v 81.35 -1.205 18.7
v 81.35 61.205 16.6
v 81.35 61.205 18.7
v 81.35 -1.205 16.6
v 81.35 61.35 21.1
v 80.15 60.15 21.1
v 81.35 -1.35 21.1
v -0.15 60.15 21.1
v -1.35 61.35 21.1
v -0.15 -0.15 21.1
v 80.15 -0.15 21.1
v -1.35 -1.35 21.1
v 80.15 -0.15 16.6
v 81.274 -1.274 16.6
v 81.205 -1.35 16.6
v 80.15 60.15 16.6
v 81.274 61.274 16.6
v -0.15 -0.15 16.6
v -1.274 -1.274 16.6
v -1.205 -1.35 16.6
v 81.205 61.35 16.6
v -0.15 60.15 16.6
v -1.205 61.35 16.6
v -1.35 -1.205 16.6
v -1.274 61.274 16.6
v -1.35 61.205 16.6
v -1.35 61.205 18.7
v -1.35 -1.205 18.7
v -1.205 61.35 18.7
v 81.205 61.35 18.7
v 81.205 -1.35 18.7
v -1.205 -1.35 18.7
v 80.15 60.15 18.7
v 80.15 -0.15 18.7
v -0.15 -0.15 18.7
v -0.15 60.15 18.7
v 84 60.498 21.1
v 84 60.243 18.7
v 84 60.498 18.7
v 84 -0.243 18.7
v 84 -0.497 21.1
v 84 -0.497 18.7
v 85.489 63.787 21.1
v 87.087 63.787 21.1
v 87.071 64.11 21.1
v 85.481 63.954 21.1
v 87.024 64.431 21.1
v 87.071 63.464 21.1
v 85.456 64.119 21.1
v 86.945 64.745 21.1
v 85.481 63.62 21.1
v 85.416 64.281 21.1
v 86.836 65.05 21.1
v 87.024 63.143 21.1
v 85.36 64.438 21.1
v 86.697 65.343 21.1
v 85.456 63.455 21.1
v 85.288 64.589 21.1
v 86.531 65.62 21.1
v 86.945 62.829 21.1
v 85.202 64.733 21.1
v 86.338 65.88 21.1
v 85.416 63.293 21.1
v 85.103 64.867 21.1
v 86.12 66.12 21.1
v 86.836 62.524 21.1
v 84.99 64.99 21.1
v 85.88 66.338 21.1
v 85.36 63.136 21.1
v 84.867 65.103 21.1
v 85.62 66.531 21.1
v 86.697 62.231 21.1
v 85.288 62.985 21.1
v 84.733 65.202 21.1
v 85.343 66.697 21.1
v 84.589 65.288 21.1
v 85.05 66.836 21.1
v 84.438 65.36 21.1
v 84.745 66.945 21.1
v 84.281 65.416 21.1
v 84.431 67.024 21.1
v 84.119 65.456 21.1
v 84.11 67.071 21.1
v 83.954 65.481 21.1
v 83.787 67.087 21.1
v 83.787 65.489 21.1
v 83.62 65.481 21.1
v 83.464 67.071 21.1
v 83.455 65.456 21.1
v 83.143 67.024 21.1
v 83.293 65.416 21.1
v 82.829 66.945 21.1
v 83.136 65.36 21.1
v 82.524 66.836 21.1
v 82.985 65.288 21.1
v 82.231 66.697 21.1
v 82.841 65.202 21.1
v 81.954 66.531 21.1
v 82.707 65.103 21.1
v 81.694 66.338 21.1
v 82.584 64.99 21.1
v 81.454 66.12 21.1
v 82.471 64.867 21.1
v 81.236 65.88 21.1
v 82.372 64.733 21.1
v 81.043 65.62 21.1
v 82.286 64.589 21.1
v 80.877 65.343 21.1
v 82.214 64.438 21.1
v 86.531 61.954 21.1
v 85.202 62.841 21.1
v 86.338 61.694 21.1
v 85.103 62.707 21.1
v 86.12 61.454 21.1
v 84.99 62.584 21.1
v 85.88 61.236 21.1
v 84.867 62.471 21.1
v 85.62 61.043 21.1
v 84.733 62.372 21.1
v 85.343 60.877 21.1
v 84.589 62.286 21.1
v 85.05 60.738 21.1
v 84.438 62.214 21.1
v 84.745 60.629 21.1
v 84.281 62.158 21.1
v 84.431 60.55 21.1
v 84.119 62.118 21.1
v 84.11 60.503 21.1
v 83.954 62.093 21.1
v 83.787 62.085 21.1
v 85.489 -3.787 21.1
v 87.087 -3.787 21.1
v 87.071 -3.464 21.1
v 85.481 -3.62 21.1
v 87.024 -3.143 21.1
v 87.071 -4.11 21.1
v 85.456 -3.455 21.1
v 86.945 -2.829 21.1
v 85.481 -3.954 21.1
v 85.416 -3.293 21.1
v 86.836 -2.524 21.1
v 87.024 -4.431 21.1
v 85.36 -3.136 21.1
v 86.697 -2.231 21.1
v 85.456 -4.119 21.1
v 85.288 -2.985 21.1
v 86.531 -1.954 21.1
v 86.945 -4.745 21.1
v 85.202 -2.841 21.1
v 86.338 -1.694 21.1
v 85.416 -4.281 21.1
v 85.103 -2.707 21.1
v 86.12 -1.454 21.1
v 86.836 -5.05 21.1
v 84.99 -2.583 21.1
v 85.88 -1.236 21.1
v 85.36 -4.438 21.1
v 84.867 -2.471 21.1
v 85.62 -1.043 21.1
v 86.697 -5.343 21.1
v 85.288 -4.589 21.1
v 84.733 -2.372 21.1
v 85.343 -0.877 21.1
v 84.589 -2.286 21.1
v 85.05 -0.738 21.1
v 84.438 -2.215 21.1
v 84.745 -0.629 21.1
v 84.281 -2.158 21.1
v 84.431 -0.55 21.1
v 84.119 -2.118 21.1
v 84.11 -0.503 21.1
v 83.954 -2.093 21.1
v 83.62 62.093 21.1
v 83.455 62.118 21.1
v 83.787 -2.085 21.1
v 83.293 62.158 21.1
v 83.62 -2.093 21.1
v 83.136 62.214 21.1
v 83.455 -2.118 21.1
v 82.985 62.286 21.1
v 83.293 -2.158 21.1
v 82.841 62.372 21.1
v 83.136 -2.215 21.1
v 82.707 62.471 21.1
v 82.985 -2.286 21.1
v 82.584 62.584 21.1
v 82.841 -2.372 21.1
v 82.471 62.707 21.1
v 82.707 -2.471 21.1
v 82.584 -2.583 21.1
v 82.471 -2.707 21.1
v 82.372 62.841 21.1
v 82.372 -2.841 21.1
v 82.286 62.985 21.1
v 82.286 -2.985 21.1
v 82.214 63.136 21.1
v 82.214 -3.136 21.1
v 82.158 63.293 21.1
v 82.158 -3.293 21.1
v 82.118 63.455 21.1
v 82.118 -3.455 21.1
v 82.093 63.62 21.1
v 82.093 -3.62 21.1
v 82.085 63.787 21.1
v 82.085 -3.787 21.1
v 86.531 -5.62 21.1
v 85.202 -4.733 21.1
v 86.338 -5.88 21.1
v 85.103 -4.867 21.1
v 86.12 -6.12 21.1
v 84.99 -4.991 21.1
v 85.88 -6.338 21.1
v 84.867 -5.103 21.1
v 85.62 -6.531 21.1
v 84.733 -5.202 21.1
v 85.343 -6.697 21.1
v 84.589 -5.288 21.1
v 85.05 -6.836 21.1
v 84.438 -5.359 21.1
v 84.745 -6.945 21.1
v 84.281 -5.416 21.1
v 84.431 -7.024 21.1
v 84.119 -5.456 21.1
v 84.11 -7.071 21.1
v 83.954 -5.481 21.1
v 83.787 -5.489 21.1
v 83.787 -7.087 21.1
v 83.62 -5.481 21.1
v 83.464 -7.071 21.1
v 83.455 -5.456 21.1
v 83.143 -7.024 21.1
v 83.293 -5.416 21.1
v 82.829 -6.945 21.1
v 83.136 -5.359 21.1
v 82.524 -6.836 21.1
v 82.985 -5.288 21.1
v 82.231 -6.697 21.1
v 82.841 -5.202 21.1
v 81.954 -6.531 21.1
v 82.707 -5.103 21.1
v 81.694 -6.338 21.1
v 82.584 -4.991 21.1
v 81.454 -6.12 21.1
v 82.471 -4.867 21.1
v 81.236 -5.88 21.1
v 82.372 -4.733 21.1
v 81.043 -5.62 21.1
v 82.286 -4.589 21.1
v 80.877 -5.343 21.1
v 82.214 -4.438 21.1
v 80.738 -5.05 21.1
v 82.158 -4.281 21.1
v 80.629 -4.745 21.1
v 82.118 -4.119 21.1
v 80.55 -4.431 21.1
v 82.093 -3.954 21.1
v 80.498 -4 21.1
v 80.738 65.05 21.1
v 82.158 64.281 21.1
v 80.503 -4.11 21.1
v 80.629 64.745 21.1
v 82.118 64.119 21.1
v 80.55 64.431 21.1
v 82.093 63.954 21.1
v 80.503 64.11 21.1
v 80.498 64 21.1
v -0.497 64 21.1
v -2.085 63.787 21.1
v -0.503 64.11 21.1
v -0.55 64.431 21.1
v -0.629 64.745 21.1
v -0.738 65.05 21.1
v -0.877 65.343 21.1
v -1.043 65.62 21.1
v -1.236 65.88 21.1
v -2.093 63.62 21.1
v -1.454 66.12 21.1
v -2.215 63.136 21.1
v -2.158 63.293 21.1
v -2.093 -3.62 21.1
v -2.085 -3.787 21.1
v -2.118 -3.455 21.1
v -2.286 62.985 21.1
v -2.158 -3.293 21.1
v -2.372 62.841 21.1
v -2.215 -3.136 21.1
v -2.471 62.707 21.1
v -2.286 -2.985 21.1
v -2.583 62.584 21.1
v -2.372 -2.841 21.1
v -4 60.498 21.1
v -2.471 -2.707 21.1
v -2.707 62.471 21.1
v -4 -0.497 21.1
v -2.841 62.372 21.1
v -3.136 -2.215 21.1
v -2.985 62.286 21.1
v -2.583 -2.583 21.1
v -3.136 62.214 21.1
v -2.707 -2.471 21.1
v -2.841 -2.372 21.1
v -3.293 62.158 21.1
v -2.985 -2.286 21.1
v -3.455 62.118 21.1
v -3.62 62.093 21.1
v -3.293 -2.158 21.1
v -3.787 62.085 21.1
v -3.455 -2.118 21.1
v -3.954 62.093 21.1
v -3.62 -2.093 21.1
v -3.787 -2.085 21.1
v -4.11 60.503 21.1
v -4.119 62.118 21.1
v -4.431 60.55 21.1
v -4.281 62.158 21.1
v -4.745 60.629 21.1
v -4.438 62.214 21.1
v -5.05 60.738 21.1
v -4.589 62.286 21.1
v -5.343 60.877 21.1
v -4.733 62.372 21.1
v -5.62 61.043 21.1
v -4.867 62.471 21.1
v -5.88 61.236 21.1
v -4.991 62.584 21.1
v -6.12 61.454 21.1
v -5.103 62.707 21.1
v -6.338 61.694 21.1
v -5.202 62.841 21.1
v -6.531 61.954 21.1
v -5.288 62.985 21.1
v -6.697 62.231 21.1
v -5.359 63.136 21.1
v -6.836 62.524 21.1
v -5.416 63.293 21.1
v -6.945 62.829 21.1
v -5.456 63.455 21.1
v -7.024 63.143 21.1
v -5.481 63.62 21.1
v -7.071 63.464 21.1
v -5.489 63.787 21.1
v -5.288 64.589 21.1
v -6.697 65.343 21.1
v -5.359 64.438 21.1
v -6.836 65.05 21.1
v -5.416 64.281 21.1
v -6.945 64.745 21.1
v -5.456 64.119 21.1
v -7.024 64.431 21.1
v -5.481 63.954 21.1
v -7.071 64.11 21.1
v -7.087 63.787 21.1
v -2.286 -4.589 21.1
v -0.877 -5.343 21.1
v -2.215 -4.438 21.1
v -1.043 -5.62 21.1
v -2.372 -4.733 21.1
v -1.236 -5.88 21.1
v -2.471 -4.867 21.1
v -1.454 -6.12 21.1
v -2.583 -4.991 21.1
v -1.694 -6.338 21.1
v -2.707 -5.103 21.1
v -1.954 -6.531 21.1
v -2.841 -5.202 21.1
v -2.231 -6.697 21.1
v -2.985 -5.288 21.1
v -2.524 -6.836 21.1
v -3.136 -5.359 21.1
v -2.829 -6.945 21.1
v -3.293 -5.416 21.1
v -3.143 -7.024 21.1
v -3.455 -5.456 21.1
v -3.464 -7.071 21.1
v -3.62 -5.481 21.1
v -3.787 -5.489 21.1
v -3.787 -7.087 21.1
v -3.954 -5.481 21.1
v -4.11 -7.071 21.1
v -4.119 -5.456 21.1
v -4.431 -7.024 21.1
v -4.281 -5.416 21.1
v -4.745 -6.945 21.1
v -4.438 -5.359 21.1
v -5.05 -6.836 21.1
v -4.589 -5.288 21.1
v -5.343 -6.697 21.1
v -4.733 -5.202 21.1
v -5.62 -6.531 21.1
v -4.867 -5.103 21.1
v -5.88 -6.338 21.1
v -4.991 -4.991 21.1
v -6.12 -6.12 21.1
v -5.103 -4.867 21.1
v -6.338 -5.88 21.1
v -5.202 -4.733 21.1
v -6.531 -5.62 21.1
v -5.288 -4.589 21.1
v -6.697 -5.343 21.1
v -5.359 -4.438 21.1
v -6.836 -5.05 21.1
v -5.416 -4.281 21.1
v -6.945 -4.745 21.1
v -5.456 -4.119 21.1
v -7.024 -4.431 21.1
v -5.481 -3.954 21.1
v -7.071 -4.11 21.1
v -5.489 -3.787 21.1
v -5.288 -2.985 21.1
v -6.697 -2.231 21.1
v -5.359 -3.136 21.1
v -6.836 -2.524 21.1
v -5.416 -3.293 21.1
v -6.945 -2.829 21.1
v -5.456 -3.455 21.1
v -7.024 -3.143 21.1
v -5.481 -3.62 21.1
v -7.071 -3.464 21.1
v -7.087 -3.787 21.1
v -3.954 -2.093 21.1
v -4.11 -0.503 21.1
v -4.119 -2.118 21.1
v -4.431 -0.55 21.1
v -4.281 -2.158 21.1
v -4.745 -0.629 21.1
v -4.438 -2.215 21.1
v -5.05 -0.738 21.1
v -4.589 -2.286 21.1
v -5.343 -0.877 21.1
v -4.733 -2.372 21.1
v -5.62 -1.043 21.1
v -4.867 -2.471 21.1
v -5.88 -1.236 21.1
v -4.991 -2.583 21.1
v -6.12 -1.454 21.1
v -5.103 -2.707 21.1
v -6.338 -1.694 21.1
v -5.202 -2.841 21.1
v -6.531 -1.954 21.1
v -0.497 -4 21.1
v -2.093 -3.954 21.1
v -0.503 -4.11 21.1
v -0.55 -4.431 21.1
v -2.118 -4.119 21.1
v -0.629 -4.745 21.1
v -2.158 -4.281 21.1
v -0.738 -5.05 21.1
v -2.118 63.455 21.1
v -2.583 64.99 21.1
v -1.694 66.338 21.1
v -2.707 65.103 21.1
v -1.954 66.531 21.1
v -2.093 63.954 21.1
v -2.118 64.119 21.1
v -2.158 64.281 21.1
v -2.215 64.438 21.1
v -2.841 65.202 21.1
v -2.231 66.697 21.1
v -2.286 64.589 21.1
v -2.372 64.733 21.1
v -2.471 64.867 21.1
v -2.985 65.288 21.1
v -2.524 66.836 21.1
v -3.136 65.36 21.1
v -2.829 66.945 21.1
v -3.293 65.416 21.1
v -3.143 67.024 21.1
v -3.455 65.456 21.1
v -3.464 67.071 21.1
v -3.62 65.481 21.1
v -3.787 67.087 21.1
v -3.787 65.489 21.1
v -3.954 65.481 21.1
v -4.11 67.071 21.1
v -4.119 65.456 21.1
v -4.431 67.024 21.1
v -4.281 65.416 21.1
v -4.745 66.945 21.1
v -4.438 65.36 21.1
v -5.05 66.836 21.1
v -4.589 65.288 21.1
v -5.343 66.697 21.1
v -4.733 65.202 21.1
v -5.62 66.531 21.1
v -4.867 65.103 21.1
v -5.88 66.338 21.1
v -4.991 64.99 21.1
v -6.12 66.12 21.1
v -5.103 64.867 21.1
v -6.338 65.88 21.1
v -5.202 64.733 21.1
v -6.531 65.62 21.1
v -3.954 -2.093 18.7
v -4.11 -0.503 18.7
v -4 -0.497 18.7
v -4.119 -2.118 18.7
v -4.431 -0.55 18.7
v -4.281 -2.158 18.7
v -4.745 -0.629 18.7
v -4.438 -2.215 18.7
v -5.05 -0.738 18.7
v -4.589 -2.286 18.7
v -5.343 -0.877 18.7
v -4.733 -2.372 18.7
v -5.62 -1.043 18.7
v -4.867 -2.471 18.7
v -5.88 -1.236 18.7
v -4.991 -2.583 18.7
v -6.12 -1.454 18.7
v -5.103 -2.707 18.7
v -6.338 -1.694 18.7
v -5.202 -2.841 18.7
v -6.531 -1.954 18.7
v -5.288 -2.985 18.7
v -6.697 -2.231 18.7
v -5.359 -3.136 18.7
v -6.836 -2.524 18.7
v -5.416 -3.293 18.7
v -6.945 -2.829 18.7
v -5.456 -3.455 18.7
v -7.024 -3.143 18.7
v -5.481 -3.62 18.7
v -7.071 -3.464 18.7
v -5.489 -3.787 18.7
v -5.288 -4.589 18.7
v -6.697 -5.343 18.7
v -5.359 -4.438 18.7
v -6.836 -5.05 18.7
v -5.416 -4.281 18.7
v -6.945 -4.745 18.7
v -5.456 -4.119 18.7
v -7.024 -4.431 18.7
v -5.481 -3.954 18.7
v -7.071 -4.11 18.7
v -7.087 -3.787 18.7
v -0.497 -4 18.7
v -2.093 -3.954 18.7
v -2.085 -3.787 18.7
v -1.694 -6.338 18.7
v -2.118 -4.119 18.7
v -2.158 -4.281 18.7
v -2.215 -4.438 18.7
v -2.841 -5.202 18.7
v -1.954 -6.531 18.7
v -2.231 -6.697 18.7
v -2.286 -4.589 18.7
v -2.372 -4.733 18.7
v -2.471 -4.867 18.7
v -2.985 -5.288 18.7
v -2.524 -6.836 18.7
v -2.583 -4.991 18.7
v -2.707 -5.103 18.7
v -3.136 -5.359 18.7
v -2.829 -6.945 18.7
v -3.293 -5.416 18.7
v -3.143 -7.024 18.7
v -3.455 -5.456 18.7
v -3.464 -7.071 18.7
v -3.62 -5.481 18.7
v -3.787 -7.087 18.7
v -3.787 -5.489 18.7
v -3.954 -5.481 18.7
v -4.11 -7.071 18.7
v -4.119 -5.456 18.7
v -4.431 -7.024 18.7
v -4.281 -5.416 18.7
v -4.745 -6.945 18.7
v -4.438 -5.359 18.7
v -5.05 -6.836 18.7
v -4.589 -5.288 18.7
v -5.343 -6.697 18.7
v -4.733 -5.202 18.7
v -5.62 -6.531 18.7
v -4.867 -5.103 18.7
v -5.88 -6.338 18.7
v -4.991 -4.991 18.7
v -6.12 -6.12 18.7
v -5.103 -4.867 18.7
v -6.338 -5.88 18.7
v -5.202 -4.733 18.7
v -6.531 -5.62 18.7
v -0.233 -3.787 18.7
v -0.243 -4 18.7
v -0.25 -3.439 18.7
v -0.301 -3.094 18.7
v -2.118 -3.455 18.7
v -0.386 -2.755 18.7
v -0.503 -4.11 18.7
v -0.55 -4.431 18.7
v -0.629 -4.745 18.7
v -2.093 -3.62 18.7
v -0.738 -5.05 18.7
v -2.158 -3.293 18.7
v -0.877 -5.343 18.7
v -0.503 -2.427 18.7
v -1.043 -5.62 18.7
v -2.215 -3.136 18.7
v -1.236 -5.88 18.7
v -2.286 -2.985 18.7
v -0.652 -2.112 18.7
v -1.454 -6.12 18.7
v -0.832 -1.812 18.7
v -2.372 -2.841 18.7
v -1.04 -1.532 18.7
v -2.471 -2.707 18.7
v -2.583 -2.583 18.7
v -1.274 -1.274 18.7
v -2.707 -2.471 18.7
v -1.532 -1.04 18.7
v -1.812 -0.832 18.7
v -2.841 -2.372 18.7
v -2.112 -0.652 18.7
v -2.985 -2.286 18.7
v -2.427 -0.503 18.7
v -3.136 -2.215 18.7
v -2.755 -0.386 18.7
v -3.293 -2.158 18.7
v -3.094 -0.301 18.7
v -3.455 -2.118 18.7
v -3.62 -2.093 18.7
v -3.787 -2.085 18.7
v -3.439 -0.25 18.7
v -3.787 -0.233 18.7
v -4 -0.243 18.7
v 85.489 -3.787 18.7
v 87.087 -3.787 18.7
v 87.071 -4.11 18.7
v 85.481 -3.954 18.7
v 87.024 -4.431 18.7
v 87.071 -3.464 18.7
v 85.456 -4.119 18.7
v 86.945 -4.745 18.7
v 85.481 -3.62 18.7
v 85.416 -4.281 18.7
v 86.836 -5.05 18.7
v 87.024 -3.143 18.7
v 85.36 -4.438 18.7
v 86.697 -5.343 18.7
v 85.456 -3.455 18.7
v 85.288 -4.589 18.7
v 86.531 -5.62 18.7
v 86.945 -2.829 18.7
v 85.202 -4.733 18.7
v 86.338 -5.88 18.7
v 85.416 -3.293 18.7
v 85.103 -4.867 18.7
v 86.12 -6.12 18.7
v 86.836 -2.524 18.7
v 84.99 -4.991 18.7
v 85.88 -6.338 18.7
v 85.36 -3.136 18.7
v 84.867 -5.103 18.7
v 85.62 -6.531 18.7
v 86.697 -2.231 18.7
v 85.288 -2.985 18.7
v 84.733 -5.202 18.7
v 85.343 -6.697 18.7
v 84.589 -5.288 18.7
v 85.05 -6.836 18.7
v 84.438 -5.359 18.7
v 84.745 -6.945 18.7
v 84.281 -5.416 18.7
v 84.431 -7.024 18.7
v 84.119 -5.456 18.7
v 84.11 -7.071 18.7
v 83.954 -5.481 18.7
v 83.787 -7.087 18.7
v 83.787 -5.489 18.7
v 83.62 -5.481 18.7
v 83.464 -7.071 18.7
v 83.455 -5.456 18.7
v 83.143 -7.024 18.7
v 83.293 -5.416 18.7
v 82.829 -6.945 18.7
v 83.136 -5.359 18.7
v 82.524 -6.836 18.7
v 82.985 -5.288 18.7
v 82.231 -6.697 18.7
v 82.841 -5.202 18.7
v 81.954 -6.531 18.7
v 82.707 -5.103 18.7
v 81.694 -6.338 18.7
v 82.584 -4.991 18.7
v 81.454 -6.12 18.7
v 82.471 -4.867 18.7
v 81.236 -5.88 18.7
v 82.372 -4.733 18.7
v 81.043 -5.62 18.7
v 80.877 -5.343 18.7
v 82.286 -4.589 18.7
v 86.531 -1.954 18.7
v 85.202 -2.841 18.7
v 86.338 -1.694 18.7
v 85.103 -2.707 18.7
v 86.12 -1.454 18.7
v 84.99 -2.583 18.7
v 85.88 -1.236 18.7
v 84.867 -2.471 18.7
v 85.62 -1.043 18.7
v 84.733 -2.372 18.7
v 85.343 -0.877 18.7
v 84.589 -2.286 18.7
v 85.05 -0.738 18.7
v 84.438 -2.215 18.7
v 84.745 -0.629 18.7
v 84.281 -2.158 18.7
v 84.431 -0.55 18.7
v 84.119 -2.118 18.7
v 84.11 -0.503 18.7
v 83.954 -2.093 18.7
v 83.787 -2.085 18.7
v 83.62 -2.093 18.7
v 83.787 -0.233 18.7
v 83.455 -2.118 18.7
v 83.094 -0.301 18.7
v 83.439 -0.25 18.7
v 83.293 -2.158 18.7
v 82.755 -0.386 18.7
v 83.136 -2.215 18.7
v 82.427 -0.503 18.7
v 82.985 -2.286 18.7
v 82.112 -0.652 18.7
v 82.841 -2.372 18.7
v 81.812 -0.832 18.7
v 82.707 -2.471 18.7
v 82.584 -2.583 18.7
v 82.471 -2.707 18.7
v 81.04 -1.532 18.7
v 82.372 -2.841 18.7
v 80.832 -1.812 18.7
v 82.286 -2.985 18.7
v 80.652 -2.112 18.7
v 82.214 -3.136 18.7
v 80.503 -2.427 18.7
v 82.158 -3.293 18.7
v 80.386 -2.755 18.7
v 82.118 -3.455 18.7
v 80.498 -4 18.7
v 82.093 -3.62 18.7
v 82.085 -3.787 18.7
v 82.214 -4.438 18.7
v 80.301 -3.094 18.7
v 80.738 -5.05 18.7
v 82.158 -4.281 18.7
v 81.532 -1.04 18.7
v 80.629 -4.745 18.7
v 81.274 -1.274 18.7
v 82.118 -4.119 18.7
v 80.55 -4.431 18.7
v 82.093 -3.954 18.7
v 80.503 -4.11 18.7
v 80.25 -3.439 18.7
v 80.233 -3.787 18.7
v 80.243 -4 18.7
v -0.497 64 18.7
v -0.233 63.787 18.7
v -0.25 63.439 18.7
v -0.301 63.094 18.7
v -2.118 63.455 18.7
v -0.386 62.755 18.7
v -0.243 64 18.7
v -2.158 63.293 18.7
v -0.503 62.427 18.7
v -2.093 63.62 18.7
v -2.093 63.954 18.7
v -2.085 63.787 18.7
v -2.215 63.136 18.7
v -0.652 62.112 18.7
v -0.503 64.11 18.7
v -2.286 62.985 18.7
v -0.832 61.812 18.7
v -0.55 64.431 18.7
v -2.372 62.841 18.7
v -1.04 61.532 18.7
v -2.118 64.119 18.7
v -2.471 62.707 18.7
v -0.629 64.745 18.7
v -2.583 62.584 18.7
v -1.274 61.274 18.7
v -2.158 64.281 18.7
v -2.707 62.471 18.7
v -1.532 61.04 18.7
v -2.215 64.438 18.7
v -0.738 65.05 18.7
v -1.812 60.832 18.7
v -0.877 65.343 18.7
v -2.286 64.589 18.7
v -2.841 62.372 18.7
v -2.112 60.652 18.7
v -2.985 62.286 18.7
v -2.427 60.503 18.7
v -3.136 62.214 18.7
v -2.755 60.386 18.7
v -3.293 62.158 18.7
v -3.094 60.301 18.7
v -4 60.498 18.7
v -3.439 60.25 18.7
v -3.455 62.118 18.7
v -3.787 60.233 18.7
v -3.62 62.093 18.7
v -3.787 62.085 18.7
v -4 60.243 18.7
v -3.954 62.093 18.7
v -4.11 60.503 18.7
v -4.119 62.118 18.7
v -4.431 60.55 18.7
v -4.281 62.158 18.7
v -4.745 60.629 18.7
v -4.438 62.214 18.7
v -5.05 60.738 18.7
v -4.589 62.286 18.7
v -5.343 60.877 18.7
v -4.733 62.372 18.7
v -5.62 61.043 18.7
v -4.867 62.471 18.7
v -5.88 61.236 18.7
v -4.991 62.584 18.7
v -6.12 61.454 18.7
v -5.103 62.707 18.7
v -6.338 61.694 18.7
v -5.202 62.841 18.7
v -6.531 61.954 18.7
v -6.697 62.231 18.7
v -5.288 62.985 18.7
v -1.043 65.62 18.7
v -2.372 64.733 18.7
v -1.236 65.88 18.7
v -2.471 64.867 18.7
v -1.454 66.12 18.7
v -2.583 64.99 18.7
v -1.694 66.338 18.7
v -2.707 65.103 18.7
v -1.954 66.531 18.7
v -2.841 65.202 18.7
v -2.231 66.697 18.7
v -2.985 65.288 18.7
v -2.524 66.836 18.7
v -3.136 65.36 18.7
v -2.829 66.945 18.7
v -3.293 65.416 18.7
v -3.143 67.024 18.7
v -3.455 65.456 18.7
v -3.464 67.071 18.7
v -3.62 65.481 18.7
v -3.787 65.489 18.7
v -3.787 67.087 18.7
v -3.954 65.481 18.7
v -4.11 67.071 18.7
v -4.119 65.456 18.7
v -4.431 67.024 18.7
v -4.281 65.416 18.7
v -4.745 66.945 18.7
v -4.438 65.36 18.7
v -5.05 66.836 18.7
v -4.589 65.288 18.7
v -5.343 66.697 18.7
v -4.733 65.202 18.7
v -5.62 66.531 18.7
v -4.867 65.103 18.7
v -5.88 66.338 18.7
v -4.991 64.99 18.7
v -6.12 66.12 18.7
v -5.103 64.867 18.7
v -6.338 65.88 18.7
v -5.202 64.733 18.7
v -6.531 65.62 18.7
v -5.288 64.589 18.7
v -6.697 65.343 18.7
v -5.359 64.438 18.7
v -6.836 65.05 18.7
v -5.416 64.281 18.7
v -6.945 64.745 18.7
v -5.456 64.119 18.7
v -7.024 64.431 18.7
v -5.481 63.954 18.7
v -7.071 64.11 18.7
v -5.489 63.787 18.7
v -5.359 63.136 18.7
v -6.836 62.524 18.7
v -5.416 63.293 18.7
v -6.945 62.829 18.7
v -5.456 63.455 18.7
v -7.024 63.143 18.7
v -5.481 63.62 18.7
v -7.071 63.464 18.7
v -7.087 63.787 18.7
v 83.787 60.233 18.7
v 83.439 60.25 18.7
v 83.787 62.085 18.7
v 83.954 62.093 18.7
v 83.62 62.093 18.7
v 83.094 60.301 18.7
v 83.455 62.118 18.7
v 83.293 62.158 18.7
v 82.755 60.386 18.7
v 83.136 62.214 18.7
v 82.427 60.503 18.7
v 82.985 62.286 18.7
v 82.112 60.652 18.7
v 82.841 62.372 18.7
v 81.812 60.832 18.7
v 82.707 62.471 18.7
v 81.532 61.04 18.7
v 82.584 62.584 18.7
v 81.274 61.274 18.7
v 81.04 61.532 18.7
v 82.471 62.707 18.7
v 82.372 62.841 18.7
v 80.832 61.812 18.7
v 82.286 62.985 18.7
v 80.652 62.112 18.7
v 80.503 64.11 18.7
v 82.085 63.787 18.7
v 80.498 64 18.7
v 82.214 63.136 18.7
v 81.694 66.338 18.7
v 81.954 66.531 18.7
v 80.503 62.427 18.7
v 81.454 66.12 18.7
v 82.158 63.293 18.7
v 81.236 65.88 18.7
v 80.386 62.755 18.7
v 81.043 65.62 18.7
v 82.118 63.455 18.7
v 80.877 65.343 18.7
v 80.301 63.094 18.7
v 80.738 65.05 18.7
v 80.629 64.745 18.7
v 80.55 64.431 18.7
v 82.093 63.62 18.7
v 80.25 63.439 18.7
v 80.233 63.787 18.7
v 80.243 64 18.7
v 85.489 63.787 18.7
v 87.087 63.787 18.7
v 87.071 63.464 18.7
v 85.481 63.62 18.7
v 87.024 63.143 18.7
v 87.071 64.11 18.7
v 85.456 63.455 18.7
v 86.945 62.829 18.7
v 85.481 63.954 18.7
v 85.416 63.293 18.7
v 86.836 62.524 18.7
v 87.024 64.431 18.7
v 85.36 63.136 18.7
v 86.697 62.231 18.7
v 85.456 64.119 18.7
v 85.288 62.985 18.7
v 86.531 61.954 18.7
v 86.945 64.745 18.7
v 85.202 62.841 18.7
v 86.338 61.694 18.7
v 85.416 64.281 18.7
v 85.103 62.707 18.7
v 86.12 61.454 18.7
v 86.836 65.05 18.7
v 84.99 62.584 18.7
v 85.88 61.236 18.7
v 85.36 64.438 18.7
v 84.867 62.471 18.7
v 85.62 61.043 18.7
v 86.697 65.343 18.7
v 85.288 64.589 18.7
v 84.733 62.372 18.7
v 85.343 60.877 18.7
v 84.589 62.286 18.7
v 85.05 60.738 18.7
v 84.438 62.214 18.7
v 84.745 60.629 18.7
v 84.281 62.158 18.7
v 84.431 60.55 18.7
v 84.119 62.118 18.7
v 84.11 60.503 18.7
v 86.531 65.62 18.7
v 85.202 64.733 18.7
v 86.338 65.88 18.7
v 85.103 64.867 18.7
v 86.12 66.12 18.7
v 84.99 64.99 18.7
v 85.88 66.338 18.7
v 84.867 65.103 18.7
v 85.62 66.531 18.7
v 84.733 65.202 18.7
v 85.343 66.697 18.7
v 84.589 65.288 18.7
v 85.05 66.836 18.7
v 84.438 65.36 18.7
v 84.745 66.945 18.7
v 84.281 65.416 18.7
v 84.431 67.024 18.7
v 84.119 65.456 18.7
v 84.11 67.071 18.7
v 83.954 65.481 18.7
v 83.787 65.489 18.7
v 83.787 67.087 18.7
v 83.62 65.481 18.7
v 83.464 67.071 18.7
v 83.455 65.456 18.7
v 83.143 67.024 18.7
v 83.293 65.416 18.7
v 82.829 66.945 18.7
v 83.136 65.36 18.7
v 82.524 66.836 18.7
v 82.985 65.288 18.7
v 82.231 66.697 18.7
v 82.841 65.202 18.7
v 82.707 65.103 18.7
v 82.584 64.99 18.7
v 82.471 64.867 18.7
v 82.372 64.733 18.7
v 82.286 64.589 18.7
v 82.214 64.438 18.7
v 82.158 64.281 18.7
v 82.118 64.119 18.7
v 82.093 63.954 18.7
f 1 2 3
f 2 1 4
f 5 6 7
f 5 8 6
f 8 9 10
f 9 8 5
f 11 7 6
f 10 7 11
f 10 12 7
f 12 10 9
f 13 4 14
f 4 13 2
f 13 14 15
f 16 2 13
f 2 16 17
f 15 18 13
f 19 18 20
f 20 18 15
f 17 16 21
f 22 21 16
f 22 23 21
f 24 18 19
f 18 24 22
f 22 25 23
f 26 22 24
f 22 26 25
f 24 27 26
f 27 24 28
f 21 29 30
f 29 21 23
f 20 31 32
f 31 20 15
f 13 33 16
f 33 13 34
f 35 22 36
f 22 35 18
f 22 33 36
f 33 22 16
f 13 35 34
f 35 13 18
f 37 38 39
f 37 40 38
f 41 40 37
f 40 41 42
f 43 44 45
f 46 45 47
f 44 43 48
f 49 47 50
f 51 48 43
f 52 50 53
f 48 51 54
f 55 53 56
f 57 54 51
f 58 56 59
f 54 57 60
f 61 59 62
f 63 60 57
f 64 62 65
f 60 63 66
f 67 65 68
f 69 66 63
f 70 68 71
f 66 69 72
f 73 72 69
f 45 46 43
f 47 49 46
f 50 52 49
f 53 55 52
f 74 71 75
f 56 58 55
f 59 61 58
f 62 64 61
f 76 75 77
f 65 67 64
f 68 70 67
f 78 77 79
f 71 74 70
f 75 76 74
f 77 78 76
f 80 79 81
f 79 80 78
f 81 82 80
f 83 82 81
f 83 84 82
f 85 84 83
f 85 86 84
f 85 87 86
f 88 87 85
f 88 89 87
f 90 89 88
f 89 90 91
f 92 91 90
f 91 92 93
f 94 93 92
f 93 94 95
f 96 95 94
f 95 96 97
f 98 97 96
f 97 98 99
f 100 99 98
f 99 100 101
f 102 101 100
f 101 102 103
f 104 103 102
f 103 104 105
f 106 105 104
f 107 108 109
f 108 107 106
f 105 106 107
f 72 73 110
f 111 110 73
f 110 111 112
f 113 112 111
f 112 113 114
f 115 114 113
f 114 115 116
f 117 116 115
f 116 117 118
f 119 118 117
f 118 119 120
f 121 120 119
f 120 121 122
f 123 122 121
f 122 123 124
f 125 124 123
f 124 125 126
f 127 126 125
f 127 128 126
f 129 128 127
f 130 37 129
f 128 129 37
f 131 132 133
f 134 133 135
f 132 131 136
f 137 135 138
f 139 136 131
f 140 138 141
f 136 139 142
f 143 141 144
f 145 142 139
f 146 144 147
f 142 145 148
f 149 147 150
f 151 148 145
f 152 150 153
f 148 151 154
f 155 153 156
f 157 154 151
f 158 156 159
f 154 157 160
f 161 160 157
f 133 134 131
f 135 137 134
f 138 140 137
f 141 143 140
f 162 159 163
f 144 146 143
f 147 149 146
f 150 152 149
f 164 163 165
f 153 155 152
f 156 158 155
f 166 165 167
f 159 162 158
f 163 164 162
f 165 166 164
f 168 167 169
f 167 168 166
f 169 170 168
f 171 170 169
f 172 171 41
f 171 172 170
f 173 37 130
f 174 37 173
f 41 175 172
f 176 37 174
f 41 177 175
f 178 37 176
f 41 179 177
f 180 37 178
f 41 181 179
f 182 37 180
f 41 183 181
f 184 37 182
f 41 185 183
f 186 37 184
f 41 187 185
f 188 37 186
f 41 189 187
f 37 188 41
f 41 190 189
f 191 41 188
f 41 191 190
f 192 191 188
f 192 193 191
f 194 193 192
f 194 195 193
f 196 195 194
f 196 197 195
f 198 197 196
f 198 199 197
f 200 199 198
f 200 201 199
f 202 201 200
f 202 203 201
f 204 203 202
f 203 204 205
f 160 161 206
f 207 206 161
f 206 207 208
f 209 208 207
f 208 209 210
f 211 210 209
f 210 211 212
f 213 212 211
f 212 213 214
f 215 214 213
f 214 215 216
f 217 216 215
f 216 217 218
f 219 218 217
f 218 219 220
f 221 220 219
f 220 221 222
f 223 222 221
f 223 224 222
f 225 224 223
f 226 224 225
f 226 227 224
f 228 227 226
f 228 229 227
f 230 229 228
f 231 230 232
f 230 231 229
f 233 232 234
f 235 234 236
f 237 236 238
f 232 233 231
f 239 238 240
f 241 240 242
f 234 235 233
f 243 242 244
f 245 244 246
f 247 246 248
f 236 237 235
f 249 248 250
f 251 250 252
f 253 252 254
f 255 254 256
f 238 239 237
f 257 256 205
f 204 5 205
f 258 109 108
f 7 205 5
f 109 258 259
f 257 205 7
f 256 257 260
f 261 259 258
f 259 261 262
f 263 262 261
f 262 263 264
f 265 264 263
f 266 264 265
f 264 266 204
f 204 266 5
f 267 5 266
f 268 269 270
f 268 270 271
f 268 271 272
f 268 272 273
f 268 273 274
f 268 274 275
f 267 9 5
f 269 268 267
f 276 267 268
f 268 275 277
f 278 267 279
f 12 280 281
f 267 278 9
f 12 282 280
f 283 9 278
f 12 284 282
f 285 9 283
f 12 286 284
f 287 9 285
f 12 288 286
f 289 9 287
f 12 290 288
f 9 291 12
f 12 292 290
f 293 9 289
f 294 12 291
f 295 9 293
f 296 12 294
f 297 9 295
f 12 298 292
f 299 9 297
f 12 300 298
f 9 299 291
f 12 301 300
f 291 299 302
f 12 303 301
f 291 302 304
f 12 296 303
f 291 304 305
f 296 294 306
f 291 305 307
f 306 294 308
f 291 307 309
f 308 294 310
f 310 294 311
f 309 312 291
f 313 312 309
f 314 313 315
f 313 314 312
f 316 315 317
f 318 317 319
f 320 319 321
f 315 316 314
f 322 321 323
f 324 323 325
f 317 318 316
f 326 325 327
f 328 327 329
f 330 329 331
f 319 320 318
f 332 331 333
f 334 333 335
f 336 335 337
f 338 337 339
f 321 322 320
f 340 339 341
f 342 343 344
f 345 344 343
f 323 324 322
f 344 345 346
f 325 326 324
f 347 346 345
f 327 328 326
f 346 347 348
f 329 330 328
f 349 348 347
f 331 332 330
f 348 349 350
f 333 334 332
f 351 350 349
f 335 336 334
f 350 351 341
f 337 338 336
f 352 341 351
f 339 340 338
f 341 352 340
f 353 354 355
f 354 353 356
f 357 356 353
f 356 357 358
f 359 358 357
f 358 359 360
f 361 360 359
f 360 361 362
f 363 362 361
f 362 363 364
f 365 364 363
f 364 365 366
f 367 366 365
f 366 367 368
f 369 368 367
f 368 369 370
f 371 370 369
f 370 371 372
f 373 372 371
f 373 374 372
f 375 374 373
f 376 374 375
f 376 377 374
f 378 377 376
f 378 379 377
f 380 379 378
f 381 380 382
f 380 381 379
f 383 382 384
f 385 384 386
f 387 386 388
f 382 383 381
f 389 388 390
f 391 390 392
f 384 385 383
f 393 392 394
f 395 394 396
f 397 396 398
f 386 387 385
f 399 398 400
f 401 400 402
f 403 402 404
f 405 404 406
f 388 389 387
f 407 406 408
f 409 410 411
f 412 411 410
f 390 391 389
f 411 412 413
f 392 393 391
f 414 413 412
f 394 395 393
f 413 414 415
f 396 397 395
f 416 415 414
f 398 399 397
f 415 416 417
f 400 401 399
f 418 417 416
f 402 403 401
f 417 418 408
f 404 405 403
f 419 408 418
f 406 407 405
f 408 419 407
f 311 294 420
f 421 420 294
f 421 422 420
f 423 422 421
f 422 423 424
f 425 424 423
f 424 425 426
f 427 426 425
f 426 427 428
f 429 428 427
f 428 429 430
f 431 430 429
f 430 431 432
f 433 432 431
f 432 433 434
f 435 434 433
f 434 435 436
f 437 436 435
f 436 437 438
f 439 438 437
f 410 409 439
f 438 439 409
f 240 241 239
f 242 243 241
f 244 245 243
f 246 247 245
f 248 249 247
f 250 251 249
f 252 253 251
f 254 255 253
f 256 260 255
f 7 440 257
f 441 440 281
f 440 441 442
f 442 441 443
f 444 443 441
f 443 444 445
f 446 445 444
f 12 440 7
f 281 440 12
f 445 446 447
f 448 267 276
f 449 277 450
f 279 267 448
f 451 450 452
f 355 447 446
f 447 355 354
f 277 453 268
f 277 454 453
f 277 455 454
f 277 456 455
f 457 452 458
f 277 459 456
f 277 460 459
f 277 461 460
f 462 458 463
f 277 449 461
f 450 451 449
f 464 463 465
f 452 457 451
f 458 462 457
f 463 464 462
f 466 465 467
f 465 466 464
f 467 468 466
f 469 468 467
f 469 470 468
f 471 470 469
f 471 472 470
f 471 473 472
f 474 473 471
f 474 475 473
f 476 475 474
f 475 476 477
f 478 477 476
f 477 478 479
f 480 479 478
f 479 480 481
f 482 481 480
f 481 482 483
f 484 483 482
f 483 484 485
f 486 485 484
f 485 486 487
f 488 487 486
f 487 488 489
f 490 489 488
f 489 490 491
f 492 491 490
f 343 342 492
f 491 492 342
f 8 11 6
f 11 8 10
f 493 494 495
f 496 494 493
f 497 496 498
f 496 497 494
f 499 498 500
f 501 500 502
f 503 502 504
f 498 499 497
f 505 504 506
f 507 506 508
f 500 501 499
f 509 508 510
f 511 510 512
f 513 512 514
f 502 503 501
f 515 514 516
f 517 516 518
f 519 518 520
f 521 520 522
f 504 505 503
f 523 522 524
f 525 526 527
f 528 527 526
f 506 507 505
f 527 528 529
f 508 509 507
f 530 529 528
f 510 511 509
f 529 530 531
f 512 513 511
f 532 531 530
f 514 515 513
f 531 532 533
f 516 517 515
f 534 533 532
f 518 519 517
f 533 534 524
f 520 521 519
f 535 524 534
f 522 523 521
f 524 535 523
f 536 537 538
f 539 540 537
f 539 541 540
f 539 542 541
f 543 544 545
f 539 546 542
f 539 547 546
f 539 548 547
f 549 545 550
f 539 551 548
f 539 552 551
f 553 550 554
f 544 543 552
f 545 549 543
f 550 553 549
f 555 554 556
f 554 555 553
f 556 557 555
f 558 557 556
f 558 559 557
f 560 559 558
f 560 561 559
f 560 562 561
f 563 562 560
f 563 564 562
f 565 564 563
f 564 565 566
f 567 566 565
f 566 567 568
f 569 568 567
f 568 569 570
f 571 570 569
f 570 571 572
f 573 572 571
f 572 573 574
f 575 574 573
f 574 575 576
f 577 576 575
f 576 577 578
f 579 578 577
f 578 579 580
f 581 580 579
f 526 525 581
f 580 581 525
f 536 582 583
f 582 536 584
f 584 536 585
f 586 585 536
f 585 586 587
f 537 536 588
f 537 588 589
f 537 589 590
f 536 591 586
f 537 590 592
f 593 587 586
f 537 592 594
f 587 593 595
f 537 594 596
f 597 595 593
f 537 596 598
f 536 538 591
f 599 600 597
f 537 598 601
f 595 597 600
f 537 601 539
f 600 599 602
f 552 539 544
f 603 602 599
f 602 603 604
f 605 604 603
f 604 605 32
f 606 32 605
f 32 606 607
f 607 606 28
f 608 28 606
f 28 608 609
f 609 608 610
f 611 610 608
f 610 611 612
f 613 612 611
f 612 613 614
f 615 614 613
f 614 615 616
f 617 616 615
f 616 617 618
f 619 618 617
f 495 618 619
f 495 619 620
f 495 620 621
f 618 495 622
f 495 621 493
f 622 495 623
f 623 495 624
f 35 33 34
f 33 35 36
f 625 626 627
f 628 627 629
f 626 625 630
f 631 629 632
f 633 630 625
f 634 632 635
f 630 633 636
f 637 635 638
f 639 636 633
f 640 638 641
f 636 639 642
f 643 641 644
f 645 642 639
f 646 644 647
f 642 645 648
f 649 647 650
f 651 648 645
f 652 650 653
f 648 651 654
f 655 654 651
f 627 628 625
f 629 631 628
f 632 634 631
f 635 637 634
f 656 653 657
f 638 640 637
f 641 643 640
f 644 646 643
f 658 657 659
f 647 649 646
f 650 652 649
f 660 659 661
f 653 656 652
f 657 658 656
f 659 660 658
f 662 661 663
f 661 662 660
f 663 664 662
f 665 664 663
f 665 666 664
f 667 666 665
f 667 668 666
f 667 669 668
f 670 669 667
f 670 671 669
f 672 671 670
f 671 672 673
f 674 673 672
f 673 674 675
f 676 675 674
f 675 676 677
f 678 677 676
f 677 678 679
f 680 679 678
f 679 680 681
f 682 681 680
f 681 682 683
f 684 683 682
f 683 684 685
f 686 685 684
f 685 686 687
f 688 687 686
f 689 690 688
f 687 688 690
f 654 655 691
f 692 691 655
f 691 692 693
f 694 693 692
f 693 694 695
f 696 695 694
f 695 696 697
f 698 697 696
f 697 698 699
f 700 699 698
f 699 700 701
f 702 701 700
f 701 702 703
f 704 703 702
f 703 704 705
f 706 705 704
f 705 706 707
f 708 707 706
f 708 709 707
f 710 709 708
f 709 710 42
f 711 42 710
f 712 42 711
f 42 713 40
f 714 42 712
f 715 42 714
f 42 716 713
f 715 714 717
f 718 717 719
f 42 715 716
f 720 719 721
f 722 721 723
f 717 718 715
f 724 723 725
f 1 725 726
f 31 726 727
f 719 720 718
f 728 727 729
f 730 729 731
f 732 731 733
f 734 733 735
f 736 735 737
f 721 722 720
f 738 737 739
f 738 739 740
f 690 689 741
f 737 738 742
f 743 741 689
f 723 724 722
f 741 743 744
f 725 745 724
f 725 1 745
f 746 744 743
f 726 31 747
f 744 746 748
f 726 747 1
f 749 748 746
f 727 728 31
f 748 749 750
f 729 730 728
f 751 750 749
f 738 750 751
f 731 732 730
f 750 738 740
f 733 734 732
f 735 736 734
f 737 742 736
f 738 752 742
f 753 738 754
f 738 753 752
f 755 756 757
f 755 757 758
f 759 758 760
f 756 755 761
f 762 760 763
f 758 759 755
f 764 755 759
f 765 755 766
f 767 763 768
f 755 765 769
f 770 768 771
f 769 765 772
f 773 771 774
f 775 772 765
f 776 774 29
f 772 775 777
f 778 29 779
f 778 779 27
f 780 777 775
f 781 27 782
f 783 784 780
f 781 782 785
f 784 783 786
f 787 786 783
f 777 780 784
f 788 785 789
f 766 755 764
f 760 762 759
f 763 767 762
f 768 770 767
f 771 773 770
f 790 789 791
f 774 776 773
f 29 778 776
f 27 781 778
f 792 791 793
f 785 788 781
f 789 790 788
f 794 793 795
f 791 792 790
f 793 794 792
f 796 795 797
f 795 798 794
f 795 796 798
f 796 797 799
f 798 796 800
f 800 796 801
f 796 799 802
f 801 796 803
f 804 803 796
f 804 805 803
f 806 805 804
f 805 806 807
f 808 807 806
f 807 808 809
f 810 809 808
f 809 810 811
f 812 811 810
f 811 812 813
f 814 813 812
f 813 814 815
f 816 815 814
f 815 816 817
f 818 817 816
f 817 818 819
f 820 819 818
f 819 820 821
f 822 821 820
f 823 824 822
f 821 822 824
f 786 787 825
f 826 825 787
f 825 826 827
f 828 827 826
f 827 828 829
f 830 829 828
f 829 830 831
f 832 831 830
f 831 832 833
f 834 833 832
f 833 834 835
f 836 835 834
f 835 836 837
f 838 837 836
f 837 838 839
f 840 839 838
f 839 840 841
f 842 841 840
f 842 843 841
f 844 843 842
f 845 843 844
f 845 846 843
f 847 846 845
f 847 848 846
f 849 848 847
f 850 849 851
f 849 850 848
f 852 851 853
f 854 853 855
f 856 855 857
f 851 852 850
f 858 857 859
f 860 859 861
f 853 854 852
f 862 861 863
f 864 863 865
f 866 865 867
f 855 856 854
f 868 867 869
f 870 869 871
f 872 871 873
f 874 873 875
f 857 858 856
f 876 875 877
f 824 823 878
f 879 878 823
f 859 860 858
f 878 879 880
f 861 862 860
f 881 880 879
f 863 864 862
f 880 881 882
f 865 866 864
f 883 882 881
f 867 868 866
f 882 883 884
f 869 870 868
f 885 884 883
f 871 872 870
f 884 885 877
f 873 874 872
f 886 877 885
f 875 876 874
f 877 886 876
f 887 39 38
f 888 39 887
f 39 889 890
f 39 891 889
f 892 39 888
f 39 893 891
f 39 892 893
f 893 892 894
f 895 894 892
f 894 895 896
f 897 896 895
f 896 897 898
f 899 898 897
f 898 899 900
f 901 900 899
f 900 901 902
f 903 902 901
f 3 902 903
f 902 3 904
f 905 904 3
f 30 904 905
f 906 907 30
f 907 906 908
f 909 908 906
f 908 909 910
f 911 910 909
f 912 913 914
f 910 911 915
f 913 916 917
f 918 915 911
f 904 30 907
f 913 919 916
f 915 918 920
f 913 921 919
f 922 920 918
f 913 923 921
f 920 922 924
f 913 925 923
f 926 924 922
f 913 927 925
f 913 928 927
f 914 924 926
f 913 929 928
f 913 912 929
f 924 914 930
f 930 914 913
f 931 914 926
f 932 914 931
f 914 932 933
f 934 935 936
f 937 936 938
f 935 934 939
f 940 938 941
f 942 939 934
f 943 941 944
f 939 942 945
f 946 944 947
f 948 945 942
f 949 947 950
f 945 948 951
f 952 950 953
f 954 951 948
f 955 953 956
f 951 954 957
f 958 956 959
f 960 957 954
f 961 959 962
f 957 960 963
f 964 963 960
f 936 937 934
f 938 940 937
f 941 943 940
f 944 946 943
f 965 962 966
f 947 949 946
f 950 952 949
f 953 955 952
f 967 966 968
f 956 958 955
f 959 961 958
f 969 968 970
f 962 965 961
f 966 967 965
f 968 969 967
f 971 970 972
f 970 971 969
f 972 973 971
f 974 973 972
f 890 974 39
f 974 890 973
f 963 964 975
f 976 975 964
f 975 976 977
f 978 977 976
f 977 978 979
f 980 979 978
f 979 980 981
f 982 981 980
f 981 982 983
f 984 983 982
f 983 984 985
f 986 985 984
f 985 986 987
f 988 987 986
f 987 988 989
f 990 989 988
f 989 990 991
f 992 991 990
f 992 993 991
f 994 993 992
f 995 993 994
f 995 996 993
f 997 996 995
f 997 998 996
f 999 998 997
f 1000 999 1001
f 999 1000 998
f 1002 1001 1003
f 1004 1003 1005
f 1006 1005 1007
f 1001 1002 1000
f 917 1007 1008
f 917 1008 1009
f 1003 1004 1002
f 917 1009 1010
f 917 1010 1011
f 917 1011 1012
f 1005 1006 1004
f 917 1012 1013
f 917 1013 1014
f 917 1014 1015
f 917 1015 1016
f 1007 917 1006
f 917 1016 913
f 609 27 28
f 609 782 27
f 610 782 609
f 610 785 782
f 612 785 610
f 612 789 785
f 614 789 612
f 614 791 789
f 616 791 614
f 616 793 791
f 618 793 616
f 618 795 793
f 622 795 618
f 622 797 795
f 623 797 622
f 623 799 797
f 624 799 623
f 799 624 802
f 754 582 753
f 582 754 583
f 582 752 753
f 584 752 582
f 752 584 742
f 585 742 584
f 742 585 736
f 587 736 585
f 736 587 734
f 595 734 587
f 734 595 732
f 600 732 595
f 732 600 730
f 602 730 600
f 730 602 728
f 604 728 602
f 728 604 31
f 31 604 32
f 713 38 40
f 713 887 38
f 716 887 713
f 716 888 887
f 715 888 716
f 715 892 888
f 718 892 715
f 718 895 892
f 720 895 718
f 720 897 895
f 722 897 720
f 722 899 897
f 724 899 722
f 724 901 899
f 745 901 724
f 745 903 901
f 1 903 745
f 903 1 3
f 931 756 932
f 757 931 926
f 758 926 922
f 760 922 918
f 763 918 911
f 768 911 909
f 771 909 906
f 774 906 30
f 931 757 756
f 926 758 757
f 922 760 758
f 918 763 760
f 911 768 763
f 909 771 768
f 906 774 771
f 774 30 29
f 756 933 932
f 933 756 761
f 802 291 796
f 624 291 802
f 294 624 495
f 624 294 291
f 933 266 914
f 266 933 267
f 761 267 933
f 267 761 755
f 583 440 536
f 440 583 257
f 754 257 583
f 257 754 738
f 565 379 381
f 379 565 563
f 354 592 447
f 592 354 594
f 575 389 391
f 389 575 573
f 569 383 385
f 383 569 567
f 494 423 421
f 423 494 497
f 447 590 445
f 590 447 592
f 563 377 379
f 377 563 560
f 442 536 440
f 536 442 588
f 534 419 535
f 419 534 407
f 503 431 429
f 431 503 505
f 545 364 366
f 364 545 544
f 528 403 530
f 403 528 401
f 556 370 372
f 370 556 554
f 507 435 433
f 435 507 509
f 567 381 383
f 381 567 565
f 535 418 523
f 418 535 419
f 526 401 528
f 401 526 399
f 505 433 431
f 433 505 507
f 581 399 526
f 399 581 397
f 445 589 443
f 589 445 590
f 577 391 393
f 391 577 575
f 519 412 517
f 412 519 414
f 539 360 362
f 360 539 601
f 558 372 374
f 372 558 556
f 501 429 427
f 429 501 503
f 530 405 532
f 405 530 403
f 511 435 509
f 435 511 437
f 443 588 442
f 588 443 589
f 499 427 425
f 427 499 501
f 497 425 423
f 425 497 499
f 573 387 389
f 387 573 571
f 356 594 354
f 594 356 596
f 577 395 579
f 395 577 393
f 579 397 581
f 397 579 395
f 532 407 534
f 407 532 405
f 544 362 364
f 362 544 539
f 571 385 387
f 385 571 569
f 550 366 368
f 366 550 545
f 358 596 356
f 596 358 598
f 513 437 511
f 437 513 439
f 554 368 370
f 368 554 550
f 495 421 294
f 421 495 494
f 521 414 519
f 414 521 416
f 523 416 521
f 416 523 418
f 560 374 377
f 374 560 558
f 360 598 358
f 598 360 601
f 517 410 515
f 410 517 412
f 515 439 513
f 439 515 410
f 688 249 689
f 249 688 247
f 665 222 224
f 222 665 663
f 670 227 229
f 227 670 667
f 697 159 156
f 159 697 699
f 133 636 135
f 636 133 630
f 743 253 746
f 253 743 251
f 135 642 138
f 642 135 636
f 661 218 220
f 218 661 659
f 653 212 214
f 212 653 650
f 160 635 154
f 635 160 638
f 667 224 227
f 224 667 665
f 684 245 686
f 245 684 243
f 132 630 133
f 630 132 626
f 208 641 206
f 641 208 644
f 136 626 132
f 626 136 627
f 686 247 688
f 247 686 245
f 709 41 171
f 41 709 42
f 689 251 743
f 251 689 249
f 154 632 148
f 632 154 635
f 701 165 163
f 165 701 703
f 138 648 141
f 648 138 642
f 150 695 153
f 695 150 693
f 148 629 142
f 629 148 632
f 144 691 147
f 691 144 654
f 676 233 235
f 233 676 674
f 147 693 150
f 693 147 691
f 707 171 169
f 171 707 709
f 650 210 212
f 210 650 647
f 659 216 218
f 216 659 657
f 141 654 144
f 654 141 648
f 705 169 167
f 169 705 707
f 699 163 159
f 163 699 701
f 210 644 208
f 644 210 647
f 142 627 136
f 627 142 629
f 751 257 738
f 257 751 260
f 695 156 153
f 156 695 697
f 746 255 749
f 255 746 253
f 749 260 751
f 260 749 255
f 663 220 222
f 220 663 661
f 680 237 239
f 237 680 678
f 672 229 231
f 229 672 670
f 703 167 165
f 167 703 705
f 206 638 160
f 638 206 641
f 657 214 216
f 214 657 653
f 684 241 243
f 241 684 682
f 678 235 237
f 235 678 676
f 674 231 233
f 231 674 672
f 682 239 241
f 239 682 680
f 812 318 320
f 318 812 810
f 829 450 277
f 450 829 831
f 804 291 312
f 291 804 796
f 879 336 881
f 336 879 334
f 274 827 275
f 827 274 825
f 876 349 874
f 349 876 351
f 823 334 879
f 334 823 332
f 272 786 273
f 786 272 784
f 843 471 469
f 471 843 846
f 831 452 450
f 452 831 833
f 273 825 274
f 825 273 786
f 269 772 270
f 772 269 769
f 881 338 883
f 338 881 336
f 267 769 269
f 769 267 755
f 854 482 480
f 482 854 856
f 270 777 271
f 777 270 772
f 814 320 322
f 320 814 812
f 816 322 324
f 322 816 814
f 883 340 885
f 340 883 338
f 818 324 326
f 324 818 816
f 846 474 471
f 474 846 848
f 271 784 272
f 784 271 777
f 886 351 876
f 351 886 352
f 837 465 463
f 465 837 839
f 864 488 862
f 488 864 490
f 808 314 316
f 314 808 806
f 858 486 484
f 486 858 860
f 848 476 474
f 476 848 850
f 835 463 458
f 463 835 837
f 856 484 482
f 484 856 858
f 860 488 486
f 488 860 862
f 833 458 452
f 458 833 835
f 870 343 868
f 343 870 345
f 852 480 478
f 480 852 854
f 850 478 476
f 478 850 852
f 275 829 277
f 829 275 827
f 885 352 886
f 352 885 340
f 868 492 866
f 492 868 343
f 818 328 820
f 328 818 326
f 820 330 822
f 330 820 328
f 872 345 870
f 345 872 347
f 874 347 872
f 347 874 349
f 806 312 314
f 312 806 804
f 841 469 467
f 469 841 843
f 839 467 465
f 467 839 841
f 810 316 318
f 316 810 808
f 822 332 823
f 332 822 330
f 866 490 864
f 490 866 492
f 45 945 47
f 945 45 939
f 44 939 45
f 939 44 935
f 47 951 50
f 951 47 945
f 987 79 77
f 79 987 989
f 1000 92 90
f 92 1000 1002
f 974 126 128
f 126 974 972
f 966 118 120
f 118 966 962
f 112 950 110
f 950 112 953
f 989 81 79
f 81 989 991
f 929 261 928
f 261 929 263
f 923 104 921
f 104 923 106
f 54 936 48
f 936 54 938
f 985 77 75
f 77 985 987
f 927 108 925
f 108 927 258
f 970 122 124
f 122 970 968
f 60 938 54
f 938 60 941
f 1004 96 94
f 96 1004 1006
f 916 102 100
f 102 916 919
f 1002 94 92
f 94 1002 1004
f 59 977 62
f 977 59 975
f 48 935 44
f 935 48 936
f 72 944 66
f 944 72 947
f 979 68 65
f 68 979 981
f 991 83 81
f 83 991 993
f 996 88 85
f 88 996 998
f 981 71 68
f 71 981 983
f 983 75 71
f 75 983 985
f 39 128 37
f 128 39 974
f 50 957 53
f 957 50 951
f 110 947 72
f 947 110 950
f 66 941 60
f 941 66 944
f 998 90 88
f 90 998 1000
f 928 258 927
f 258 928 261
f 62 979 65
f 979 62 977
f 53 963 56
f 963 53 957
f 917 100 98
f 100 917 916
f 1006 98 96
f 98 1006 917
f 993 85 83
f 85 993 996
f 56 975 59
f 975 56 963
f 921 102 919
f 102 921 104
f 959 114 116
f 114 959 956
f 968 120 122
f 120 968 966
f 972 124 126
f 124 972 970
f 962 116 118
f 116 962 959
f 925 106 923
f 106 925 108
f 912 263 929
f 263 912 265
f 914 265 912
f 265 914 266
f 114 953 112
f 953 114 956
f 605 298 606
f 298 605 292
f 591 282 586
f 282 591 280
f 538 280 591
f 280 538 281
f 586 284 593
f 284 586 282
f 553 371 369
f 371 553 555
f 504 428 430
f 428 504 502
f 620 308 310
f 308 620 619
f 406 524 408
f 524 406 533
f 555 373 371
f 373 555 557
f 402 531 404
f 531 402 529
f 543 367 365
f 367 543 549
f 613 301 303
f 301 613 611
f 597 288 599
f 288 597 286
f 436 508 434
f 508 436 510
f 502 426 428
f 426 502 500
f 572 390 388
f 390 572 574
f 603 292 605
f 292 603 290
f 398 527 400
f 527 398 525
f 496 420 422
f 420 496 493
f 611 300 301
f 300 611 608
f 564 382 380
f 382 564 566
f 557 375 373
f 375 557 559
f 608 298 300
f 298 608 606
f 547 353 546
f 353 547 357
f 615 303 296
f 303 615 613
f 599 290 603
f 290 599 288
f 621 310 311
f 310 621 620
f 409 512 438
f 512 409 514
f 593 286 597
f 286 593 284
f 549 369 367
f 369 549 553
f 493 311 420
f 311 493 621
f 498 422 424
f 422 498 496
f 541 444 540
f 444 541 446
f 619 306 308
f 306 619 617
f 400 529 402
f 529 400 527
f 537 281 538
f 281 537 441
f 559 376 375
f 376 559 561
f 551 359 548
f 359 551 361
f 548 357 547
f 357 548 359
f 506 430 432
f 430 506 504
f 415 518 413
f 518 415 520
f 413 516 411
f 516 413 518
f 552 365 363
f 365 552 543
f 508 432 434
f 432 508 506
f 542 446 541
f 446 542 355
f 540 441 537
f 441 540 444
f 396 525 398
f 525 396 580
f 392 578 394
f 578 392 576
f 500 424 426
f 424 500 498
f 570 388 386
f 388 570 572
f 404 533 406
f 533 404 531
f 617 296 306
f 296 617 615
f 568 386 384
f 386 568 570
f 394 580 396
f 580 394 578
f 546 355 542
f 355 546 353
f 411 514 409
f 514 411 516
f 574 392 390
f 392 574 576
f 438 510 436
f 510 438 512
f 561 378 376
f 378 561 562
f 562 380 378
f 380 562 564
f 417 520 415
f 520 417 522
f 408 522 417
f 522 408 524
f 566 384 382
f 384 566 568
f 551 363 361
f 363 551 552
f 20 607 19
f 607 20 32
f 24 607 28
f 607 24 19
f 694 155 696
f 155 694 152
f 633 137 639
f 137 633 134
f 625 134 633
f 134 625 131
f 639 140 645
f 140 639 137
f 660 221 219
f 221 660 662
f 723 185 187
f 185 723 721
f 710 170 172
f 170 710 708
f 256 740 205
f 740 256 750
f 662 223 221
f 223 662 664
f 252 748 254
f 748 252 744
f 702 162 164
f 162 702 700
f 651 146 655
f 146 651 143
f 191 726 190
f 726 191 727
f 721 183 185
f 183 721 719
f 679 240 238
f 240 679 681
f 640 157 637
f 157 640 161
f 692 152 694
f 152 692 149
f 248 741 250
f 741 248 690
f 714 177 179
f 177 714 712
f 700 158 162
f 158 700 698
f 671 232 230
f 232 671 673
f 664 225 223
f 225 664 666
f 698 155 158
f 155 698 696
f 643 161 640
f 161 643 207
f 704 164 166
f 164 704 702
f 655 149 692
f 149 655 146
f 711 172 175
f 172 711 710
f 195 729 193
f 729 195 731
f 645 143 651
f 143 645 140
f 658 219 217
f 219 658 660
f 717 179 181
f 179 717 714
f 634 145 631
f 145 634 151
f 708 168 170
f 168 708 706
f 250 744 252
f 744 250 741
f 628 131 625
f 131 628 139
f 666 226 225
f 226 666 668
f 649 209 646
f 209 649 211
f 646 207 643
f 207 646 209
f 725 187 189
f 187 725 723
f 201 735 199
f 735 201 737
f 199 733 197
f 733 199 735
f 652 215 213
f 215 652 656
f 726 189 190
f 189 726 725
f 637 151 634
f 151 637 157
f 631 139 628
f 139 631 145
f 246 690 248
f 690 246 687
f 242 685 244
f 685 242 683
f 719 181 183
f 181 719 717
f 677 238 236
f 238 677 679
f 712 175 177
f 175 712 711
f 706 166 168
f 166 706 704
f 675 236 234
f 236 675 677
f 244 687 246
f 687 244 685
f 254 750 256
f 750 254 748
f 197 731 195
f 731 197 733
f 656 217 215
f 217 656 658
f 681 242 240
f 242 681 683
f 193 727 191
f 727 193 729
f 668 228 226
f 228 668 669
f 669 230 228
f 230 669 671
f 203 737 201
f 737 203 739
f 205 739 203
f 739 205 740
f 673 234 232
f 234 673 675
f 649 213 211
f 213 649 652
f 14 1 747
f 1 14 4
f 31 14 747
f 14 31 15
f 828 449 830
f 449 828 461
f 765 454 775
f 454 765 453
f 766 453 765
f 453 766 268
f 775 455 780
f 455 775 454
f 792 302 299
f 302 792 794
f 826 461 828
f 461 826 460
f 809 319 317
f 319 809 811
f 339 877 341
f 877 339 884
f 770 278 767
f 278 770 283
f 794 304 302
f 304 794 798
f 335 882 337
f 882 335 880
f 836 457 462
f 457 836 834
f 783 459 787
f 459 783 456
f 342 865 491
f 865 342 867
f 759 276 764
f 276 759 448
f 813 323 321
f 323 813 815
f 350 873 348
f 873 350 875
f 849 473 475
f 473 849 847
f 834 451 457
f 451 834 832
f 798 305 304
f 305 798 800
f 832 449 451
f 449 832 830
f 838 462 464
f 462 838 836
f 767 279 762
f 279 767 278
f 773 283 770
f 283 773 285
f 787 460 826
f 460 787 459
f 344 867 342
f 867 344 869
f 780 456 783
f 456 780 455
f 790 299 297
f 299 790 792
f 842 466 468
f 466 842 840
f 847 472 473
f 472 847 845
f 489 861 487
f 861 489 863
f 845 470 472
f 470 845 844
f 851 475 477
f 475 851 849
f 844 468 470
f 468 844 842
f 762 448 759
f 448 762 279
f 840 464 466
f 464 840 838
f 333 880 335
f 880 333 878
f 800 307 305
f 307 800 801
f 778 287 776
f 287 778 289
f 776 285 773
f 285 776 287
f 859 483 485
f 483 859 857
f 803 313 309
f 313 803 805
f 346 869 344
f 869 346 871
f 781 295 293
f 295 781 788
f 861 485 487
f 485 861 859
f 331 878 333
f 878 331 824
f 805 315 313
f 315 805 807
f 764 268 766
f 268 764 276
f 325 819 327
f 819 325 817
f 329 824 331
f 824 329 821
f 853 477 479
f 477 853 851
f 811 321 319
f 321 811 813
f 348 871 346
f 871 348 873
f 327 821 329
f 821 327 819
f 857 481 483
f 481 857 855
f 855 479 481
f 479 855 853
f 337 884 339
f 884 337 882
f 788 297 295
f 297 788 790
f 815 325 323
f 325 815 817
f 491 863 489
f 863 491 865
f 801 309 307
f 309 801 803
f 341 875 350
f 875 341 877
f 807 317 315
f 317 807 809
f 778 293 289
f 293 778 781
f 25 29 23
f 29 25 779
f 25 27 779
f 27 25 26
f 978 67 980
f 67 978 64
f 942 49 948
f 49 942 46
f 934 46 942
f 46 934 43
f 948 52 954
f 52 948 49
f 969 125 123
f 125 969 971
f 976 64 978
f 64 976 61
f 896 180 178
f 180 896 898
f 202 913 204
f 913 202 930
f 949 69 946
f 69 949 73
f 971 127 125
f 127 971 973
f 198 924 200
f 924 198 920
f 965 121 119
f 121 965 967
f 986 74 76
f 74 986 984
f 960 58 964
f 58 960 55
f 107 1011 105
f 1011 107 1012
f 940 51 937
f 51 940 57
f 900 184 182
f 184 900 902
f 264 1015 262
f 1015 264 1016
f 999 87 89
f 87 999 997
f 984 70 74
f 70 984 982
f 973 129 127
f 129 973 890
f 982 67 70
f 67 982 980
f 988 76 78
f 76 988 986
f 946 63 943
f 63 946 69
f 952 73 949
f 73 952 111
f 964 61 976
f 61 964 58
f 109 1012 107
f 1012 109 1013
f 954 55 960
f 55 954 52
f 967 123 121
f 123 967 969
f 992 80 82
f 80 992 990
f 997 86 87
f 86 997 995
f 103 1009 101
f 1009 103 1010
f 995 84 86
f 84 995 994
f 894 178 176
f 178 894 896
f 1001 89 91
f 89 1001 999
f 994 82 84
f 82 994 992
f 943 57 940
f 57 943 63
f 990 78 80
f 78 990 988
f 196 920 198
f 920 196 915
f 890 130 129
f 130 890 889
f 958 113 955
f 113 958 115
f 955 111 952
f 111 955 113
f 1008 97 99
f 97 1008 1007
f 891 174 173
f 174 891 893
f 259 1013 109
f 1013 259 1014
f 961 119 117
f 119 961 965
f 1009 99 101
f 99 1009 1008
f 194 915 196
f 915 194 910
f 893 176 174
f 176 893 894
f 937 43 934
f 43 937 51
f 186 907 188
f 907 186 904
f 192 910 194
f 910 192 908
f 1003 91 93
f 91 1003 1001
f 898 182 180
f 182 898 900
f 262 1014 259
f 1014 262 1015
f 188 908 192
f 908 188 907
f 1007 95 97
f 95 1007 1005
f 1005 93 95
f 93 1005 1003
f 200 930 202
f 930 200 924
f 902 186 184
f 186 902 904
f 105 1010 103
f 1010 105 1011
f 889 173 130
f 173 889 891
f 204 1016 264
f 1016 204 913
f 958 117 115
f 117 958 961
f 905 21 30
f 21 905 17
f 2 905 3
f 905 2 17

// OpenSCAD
// body lid
difference() {
  union() {
    // body lid (lid_plate)
    multmatrix([[1, 0, 0, 40], [0, 1, 0, 30], [0, 0, 1, 18.7], [0, 0, 0, 1]]) translate([-44, -34, 0]) cube([88, 68, 2.4]);
    // add lid_lip (lip)
    multmatrix([[1, 0, 0, 40], [0, 1, 0, 30], [0, 0, 1, 16.6], [0, 0, 0, 1]]) difference() { translate([-41.35, -31.35, 0]) cube([82.7, 62.7, 4.5]); translate([0, 0, -1]) translate([-40.15, -30.15, 0]) cube([80.3, 60.3, 6.5]); }
    // add boss_1_pad (pad)
    multmatrix([[1, 0, 0, -3.787006], [0, 1, 0, -3.787006], [0, 0, 1, 18.7], [0, 0, 0, 1]]) cylinder(h=2.4, d=6.6, $fn=64);
    // add boss_2_pad (pad)
    multmatrix([[1, 0, 0, 83.787006], [0, 1, 0, -3.787006], [0, 0, 1, 18.7], [0, 0, 0, 1]]) cylinder(h=2.4, d=6.6, $fn=64);
    // add boss_3_pad (pad)
    multmatrix([[1, 0, 0, -3.787006], [0, 1, 0, 63.787006], [0, 0, 1, 18.7], [0, 0, 0, 1]]) cylinder(h=2.4, d=6.6, $fn=64);
    // add boss_4_pad (pad)
    multmatrix([[1, 0, 0, 83.787006], [0, 1, 0, 63.787006], [0, 0, 1, 18.7], [0, 0, 0, 1]]) cylinder(h=2.4, d=6.6, $fn=64);
  }
  // cut boss_1_lid_hole (screw_hole)
  multmatrix([[1, 0, 0, -3.787006], [0, 1, 0, -3.787006], [0, 0, 1, 17.7], [0, 0, 0, 1]]) cylinder(h=4.4, d=3.4041, $fn=64);
  // cut boss_1_lip_notch (lip_notch)
  multmatrix([[1, 0, 0, -3.787006], [0, 1, 0, -3.787006], [0, 0, 1, 15.6], [0, 0, 0, 1]]) cylinder(h=3.1, d=7.108563, $fn=64);
  // cut boss_2_lid_hole (screw_hole)
  multmatrix([[1, 0, 0, 83.787006], [0, 1, 0, -3.787006], [0, 0, 1, 17.7], [0, 0, 0, 1]]) cylinder(h=4.4, d=3.4041, $fn=64);
  // cut boss_2_lip_notch (lip_notch)
  multmatrix([[1, 0, 0, 83.787006], [0, 1, 0, -3.787006], [0, 0, 1, 15.6], [0, 0, 0, 1]]) cylinder(h=3.1, d=7.108563, $fn=64);
  // cut boss_3_lid_hole (screw_hole)
  multmatrix([[1, 0, 0, -3.787006], [0, 1, 0, 63.787006], [0, 0, 1, 17.7], [0, 0, 0, 1]]) cylinder(h=4.4, d=3.4041, $fn=64);
  // cut boss_3_lip_notch (lip_notch)
  multmatrix([[1, 0, 0, -3.787006], [0, 1, 0, 63.787006], [0, 0, 1, 15.6], [0, 0, 0, 1]]) cylinder(h=3.1, d=7.108563, $fn=64);
  // cut boss_4_lid_hole (screw_hole)
  multmatrix([[1, 0, 0, 83.787006], [0, 1, 0, 63.787006], [0, 0, 1, 17.7], [0, 0, 0, 1]]) cylinder(h=4.4, d=3.4041, $fn=64);
  // cut boss_4_lip_notch (lip_notch)
  multmatrix([[1, 0, 0, 83.787006], [0, 1, 0, 63.787006], [0, 0, 1, 15.6], [0, 0, 0, 1]]) cylinder(h=3.1, d=7.108563, $fn=64);
}
